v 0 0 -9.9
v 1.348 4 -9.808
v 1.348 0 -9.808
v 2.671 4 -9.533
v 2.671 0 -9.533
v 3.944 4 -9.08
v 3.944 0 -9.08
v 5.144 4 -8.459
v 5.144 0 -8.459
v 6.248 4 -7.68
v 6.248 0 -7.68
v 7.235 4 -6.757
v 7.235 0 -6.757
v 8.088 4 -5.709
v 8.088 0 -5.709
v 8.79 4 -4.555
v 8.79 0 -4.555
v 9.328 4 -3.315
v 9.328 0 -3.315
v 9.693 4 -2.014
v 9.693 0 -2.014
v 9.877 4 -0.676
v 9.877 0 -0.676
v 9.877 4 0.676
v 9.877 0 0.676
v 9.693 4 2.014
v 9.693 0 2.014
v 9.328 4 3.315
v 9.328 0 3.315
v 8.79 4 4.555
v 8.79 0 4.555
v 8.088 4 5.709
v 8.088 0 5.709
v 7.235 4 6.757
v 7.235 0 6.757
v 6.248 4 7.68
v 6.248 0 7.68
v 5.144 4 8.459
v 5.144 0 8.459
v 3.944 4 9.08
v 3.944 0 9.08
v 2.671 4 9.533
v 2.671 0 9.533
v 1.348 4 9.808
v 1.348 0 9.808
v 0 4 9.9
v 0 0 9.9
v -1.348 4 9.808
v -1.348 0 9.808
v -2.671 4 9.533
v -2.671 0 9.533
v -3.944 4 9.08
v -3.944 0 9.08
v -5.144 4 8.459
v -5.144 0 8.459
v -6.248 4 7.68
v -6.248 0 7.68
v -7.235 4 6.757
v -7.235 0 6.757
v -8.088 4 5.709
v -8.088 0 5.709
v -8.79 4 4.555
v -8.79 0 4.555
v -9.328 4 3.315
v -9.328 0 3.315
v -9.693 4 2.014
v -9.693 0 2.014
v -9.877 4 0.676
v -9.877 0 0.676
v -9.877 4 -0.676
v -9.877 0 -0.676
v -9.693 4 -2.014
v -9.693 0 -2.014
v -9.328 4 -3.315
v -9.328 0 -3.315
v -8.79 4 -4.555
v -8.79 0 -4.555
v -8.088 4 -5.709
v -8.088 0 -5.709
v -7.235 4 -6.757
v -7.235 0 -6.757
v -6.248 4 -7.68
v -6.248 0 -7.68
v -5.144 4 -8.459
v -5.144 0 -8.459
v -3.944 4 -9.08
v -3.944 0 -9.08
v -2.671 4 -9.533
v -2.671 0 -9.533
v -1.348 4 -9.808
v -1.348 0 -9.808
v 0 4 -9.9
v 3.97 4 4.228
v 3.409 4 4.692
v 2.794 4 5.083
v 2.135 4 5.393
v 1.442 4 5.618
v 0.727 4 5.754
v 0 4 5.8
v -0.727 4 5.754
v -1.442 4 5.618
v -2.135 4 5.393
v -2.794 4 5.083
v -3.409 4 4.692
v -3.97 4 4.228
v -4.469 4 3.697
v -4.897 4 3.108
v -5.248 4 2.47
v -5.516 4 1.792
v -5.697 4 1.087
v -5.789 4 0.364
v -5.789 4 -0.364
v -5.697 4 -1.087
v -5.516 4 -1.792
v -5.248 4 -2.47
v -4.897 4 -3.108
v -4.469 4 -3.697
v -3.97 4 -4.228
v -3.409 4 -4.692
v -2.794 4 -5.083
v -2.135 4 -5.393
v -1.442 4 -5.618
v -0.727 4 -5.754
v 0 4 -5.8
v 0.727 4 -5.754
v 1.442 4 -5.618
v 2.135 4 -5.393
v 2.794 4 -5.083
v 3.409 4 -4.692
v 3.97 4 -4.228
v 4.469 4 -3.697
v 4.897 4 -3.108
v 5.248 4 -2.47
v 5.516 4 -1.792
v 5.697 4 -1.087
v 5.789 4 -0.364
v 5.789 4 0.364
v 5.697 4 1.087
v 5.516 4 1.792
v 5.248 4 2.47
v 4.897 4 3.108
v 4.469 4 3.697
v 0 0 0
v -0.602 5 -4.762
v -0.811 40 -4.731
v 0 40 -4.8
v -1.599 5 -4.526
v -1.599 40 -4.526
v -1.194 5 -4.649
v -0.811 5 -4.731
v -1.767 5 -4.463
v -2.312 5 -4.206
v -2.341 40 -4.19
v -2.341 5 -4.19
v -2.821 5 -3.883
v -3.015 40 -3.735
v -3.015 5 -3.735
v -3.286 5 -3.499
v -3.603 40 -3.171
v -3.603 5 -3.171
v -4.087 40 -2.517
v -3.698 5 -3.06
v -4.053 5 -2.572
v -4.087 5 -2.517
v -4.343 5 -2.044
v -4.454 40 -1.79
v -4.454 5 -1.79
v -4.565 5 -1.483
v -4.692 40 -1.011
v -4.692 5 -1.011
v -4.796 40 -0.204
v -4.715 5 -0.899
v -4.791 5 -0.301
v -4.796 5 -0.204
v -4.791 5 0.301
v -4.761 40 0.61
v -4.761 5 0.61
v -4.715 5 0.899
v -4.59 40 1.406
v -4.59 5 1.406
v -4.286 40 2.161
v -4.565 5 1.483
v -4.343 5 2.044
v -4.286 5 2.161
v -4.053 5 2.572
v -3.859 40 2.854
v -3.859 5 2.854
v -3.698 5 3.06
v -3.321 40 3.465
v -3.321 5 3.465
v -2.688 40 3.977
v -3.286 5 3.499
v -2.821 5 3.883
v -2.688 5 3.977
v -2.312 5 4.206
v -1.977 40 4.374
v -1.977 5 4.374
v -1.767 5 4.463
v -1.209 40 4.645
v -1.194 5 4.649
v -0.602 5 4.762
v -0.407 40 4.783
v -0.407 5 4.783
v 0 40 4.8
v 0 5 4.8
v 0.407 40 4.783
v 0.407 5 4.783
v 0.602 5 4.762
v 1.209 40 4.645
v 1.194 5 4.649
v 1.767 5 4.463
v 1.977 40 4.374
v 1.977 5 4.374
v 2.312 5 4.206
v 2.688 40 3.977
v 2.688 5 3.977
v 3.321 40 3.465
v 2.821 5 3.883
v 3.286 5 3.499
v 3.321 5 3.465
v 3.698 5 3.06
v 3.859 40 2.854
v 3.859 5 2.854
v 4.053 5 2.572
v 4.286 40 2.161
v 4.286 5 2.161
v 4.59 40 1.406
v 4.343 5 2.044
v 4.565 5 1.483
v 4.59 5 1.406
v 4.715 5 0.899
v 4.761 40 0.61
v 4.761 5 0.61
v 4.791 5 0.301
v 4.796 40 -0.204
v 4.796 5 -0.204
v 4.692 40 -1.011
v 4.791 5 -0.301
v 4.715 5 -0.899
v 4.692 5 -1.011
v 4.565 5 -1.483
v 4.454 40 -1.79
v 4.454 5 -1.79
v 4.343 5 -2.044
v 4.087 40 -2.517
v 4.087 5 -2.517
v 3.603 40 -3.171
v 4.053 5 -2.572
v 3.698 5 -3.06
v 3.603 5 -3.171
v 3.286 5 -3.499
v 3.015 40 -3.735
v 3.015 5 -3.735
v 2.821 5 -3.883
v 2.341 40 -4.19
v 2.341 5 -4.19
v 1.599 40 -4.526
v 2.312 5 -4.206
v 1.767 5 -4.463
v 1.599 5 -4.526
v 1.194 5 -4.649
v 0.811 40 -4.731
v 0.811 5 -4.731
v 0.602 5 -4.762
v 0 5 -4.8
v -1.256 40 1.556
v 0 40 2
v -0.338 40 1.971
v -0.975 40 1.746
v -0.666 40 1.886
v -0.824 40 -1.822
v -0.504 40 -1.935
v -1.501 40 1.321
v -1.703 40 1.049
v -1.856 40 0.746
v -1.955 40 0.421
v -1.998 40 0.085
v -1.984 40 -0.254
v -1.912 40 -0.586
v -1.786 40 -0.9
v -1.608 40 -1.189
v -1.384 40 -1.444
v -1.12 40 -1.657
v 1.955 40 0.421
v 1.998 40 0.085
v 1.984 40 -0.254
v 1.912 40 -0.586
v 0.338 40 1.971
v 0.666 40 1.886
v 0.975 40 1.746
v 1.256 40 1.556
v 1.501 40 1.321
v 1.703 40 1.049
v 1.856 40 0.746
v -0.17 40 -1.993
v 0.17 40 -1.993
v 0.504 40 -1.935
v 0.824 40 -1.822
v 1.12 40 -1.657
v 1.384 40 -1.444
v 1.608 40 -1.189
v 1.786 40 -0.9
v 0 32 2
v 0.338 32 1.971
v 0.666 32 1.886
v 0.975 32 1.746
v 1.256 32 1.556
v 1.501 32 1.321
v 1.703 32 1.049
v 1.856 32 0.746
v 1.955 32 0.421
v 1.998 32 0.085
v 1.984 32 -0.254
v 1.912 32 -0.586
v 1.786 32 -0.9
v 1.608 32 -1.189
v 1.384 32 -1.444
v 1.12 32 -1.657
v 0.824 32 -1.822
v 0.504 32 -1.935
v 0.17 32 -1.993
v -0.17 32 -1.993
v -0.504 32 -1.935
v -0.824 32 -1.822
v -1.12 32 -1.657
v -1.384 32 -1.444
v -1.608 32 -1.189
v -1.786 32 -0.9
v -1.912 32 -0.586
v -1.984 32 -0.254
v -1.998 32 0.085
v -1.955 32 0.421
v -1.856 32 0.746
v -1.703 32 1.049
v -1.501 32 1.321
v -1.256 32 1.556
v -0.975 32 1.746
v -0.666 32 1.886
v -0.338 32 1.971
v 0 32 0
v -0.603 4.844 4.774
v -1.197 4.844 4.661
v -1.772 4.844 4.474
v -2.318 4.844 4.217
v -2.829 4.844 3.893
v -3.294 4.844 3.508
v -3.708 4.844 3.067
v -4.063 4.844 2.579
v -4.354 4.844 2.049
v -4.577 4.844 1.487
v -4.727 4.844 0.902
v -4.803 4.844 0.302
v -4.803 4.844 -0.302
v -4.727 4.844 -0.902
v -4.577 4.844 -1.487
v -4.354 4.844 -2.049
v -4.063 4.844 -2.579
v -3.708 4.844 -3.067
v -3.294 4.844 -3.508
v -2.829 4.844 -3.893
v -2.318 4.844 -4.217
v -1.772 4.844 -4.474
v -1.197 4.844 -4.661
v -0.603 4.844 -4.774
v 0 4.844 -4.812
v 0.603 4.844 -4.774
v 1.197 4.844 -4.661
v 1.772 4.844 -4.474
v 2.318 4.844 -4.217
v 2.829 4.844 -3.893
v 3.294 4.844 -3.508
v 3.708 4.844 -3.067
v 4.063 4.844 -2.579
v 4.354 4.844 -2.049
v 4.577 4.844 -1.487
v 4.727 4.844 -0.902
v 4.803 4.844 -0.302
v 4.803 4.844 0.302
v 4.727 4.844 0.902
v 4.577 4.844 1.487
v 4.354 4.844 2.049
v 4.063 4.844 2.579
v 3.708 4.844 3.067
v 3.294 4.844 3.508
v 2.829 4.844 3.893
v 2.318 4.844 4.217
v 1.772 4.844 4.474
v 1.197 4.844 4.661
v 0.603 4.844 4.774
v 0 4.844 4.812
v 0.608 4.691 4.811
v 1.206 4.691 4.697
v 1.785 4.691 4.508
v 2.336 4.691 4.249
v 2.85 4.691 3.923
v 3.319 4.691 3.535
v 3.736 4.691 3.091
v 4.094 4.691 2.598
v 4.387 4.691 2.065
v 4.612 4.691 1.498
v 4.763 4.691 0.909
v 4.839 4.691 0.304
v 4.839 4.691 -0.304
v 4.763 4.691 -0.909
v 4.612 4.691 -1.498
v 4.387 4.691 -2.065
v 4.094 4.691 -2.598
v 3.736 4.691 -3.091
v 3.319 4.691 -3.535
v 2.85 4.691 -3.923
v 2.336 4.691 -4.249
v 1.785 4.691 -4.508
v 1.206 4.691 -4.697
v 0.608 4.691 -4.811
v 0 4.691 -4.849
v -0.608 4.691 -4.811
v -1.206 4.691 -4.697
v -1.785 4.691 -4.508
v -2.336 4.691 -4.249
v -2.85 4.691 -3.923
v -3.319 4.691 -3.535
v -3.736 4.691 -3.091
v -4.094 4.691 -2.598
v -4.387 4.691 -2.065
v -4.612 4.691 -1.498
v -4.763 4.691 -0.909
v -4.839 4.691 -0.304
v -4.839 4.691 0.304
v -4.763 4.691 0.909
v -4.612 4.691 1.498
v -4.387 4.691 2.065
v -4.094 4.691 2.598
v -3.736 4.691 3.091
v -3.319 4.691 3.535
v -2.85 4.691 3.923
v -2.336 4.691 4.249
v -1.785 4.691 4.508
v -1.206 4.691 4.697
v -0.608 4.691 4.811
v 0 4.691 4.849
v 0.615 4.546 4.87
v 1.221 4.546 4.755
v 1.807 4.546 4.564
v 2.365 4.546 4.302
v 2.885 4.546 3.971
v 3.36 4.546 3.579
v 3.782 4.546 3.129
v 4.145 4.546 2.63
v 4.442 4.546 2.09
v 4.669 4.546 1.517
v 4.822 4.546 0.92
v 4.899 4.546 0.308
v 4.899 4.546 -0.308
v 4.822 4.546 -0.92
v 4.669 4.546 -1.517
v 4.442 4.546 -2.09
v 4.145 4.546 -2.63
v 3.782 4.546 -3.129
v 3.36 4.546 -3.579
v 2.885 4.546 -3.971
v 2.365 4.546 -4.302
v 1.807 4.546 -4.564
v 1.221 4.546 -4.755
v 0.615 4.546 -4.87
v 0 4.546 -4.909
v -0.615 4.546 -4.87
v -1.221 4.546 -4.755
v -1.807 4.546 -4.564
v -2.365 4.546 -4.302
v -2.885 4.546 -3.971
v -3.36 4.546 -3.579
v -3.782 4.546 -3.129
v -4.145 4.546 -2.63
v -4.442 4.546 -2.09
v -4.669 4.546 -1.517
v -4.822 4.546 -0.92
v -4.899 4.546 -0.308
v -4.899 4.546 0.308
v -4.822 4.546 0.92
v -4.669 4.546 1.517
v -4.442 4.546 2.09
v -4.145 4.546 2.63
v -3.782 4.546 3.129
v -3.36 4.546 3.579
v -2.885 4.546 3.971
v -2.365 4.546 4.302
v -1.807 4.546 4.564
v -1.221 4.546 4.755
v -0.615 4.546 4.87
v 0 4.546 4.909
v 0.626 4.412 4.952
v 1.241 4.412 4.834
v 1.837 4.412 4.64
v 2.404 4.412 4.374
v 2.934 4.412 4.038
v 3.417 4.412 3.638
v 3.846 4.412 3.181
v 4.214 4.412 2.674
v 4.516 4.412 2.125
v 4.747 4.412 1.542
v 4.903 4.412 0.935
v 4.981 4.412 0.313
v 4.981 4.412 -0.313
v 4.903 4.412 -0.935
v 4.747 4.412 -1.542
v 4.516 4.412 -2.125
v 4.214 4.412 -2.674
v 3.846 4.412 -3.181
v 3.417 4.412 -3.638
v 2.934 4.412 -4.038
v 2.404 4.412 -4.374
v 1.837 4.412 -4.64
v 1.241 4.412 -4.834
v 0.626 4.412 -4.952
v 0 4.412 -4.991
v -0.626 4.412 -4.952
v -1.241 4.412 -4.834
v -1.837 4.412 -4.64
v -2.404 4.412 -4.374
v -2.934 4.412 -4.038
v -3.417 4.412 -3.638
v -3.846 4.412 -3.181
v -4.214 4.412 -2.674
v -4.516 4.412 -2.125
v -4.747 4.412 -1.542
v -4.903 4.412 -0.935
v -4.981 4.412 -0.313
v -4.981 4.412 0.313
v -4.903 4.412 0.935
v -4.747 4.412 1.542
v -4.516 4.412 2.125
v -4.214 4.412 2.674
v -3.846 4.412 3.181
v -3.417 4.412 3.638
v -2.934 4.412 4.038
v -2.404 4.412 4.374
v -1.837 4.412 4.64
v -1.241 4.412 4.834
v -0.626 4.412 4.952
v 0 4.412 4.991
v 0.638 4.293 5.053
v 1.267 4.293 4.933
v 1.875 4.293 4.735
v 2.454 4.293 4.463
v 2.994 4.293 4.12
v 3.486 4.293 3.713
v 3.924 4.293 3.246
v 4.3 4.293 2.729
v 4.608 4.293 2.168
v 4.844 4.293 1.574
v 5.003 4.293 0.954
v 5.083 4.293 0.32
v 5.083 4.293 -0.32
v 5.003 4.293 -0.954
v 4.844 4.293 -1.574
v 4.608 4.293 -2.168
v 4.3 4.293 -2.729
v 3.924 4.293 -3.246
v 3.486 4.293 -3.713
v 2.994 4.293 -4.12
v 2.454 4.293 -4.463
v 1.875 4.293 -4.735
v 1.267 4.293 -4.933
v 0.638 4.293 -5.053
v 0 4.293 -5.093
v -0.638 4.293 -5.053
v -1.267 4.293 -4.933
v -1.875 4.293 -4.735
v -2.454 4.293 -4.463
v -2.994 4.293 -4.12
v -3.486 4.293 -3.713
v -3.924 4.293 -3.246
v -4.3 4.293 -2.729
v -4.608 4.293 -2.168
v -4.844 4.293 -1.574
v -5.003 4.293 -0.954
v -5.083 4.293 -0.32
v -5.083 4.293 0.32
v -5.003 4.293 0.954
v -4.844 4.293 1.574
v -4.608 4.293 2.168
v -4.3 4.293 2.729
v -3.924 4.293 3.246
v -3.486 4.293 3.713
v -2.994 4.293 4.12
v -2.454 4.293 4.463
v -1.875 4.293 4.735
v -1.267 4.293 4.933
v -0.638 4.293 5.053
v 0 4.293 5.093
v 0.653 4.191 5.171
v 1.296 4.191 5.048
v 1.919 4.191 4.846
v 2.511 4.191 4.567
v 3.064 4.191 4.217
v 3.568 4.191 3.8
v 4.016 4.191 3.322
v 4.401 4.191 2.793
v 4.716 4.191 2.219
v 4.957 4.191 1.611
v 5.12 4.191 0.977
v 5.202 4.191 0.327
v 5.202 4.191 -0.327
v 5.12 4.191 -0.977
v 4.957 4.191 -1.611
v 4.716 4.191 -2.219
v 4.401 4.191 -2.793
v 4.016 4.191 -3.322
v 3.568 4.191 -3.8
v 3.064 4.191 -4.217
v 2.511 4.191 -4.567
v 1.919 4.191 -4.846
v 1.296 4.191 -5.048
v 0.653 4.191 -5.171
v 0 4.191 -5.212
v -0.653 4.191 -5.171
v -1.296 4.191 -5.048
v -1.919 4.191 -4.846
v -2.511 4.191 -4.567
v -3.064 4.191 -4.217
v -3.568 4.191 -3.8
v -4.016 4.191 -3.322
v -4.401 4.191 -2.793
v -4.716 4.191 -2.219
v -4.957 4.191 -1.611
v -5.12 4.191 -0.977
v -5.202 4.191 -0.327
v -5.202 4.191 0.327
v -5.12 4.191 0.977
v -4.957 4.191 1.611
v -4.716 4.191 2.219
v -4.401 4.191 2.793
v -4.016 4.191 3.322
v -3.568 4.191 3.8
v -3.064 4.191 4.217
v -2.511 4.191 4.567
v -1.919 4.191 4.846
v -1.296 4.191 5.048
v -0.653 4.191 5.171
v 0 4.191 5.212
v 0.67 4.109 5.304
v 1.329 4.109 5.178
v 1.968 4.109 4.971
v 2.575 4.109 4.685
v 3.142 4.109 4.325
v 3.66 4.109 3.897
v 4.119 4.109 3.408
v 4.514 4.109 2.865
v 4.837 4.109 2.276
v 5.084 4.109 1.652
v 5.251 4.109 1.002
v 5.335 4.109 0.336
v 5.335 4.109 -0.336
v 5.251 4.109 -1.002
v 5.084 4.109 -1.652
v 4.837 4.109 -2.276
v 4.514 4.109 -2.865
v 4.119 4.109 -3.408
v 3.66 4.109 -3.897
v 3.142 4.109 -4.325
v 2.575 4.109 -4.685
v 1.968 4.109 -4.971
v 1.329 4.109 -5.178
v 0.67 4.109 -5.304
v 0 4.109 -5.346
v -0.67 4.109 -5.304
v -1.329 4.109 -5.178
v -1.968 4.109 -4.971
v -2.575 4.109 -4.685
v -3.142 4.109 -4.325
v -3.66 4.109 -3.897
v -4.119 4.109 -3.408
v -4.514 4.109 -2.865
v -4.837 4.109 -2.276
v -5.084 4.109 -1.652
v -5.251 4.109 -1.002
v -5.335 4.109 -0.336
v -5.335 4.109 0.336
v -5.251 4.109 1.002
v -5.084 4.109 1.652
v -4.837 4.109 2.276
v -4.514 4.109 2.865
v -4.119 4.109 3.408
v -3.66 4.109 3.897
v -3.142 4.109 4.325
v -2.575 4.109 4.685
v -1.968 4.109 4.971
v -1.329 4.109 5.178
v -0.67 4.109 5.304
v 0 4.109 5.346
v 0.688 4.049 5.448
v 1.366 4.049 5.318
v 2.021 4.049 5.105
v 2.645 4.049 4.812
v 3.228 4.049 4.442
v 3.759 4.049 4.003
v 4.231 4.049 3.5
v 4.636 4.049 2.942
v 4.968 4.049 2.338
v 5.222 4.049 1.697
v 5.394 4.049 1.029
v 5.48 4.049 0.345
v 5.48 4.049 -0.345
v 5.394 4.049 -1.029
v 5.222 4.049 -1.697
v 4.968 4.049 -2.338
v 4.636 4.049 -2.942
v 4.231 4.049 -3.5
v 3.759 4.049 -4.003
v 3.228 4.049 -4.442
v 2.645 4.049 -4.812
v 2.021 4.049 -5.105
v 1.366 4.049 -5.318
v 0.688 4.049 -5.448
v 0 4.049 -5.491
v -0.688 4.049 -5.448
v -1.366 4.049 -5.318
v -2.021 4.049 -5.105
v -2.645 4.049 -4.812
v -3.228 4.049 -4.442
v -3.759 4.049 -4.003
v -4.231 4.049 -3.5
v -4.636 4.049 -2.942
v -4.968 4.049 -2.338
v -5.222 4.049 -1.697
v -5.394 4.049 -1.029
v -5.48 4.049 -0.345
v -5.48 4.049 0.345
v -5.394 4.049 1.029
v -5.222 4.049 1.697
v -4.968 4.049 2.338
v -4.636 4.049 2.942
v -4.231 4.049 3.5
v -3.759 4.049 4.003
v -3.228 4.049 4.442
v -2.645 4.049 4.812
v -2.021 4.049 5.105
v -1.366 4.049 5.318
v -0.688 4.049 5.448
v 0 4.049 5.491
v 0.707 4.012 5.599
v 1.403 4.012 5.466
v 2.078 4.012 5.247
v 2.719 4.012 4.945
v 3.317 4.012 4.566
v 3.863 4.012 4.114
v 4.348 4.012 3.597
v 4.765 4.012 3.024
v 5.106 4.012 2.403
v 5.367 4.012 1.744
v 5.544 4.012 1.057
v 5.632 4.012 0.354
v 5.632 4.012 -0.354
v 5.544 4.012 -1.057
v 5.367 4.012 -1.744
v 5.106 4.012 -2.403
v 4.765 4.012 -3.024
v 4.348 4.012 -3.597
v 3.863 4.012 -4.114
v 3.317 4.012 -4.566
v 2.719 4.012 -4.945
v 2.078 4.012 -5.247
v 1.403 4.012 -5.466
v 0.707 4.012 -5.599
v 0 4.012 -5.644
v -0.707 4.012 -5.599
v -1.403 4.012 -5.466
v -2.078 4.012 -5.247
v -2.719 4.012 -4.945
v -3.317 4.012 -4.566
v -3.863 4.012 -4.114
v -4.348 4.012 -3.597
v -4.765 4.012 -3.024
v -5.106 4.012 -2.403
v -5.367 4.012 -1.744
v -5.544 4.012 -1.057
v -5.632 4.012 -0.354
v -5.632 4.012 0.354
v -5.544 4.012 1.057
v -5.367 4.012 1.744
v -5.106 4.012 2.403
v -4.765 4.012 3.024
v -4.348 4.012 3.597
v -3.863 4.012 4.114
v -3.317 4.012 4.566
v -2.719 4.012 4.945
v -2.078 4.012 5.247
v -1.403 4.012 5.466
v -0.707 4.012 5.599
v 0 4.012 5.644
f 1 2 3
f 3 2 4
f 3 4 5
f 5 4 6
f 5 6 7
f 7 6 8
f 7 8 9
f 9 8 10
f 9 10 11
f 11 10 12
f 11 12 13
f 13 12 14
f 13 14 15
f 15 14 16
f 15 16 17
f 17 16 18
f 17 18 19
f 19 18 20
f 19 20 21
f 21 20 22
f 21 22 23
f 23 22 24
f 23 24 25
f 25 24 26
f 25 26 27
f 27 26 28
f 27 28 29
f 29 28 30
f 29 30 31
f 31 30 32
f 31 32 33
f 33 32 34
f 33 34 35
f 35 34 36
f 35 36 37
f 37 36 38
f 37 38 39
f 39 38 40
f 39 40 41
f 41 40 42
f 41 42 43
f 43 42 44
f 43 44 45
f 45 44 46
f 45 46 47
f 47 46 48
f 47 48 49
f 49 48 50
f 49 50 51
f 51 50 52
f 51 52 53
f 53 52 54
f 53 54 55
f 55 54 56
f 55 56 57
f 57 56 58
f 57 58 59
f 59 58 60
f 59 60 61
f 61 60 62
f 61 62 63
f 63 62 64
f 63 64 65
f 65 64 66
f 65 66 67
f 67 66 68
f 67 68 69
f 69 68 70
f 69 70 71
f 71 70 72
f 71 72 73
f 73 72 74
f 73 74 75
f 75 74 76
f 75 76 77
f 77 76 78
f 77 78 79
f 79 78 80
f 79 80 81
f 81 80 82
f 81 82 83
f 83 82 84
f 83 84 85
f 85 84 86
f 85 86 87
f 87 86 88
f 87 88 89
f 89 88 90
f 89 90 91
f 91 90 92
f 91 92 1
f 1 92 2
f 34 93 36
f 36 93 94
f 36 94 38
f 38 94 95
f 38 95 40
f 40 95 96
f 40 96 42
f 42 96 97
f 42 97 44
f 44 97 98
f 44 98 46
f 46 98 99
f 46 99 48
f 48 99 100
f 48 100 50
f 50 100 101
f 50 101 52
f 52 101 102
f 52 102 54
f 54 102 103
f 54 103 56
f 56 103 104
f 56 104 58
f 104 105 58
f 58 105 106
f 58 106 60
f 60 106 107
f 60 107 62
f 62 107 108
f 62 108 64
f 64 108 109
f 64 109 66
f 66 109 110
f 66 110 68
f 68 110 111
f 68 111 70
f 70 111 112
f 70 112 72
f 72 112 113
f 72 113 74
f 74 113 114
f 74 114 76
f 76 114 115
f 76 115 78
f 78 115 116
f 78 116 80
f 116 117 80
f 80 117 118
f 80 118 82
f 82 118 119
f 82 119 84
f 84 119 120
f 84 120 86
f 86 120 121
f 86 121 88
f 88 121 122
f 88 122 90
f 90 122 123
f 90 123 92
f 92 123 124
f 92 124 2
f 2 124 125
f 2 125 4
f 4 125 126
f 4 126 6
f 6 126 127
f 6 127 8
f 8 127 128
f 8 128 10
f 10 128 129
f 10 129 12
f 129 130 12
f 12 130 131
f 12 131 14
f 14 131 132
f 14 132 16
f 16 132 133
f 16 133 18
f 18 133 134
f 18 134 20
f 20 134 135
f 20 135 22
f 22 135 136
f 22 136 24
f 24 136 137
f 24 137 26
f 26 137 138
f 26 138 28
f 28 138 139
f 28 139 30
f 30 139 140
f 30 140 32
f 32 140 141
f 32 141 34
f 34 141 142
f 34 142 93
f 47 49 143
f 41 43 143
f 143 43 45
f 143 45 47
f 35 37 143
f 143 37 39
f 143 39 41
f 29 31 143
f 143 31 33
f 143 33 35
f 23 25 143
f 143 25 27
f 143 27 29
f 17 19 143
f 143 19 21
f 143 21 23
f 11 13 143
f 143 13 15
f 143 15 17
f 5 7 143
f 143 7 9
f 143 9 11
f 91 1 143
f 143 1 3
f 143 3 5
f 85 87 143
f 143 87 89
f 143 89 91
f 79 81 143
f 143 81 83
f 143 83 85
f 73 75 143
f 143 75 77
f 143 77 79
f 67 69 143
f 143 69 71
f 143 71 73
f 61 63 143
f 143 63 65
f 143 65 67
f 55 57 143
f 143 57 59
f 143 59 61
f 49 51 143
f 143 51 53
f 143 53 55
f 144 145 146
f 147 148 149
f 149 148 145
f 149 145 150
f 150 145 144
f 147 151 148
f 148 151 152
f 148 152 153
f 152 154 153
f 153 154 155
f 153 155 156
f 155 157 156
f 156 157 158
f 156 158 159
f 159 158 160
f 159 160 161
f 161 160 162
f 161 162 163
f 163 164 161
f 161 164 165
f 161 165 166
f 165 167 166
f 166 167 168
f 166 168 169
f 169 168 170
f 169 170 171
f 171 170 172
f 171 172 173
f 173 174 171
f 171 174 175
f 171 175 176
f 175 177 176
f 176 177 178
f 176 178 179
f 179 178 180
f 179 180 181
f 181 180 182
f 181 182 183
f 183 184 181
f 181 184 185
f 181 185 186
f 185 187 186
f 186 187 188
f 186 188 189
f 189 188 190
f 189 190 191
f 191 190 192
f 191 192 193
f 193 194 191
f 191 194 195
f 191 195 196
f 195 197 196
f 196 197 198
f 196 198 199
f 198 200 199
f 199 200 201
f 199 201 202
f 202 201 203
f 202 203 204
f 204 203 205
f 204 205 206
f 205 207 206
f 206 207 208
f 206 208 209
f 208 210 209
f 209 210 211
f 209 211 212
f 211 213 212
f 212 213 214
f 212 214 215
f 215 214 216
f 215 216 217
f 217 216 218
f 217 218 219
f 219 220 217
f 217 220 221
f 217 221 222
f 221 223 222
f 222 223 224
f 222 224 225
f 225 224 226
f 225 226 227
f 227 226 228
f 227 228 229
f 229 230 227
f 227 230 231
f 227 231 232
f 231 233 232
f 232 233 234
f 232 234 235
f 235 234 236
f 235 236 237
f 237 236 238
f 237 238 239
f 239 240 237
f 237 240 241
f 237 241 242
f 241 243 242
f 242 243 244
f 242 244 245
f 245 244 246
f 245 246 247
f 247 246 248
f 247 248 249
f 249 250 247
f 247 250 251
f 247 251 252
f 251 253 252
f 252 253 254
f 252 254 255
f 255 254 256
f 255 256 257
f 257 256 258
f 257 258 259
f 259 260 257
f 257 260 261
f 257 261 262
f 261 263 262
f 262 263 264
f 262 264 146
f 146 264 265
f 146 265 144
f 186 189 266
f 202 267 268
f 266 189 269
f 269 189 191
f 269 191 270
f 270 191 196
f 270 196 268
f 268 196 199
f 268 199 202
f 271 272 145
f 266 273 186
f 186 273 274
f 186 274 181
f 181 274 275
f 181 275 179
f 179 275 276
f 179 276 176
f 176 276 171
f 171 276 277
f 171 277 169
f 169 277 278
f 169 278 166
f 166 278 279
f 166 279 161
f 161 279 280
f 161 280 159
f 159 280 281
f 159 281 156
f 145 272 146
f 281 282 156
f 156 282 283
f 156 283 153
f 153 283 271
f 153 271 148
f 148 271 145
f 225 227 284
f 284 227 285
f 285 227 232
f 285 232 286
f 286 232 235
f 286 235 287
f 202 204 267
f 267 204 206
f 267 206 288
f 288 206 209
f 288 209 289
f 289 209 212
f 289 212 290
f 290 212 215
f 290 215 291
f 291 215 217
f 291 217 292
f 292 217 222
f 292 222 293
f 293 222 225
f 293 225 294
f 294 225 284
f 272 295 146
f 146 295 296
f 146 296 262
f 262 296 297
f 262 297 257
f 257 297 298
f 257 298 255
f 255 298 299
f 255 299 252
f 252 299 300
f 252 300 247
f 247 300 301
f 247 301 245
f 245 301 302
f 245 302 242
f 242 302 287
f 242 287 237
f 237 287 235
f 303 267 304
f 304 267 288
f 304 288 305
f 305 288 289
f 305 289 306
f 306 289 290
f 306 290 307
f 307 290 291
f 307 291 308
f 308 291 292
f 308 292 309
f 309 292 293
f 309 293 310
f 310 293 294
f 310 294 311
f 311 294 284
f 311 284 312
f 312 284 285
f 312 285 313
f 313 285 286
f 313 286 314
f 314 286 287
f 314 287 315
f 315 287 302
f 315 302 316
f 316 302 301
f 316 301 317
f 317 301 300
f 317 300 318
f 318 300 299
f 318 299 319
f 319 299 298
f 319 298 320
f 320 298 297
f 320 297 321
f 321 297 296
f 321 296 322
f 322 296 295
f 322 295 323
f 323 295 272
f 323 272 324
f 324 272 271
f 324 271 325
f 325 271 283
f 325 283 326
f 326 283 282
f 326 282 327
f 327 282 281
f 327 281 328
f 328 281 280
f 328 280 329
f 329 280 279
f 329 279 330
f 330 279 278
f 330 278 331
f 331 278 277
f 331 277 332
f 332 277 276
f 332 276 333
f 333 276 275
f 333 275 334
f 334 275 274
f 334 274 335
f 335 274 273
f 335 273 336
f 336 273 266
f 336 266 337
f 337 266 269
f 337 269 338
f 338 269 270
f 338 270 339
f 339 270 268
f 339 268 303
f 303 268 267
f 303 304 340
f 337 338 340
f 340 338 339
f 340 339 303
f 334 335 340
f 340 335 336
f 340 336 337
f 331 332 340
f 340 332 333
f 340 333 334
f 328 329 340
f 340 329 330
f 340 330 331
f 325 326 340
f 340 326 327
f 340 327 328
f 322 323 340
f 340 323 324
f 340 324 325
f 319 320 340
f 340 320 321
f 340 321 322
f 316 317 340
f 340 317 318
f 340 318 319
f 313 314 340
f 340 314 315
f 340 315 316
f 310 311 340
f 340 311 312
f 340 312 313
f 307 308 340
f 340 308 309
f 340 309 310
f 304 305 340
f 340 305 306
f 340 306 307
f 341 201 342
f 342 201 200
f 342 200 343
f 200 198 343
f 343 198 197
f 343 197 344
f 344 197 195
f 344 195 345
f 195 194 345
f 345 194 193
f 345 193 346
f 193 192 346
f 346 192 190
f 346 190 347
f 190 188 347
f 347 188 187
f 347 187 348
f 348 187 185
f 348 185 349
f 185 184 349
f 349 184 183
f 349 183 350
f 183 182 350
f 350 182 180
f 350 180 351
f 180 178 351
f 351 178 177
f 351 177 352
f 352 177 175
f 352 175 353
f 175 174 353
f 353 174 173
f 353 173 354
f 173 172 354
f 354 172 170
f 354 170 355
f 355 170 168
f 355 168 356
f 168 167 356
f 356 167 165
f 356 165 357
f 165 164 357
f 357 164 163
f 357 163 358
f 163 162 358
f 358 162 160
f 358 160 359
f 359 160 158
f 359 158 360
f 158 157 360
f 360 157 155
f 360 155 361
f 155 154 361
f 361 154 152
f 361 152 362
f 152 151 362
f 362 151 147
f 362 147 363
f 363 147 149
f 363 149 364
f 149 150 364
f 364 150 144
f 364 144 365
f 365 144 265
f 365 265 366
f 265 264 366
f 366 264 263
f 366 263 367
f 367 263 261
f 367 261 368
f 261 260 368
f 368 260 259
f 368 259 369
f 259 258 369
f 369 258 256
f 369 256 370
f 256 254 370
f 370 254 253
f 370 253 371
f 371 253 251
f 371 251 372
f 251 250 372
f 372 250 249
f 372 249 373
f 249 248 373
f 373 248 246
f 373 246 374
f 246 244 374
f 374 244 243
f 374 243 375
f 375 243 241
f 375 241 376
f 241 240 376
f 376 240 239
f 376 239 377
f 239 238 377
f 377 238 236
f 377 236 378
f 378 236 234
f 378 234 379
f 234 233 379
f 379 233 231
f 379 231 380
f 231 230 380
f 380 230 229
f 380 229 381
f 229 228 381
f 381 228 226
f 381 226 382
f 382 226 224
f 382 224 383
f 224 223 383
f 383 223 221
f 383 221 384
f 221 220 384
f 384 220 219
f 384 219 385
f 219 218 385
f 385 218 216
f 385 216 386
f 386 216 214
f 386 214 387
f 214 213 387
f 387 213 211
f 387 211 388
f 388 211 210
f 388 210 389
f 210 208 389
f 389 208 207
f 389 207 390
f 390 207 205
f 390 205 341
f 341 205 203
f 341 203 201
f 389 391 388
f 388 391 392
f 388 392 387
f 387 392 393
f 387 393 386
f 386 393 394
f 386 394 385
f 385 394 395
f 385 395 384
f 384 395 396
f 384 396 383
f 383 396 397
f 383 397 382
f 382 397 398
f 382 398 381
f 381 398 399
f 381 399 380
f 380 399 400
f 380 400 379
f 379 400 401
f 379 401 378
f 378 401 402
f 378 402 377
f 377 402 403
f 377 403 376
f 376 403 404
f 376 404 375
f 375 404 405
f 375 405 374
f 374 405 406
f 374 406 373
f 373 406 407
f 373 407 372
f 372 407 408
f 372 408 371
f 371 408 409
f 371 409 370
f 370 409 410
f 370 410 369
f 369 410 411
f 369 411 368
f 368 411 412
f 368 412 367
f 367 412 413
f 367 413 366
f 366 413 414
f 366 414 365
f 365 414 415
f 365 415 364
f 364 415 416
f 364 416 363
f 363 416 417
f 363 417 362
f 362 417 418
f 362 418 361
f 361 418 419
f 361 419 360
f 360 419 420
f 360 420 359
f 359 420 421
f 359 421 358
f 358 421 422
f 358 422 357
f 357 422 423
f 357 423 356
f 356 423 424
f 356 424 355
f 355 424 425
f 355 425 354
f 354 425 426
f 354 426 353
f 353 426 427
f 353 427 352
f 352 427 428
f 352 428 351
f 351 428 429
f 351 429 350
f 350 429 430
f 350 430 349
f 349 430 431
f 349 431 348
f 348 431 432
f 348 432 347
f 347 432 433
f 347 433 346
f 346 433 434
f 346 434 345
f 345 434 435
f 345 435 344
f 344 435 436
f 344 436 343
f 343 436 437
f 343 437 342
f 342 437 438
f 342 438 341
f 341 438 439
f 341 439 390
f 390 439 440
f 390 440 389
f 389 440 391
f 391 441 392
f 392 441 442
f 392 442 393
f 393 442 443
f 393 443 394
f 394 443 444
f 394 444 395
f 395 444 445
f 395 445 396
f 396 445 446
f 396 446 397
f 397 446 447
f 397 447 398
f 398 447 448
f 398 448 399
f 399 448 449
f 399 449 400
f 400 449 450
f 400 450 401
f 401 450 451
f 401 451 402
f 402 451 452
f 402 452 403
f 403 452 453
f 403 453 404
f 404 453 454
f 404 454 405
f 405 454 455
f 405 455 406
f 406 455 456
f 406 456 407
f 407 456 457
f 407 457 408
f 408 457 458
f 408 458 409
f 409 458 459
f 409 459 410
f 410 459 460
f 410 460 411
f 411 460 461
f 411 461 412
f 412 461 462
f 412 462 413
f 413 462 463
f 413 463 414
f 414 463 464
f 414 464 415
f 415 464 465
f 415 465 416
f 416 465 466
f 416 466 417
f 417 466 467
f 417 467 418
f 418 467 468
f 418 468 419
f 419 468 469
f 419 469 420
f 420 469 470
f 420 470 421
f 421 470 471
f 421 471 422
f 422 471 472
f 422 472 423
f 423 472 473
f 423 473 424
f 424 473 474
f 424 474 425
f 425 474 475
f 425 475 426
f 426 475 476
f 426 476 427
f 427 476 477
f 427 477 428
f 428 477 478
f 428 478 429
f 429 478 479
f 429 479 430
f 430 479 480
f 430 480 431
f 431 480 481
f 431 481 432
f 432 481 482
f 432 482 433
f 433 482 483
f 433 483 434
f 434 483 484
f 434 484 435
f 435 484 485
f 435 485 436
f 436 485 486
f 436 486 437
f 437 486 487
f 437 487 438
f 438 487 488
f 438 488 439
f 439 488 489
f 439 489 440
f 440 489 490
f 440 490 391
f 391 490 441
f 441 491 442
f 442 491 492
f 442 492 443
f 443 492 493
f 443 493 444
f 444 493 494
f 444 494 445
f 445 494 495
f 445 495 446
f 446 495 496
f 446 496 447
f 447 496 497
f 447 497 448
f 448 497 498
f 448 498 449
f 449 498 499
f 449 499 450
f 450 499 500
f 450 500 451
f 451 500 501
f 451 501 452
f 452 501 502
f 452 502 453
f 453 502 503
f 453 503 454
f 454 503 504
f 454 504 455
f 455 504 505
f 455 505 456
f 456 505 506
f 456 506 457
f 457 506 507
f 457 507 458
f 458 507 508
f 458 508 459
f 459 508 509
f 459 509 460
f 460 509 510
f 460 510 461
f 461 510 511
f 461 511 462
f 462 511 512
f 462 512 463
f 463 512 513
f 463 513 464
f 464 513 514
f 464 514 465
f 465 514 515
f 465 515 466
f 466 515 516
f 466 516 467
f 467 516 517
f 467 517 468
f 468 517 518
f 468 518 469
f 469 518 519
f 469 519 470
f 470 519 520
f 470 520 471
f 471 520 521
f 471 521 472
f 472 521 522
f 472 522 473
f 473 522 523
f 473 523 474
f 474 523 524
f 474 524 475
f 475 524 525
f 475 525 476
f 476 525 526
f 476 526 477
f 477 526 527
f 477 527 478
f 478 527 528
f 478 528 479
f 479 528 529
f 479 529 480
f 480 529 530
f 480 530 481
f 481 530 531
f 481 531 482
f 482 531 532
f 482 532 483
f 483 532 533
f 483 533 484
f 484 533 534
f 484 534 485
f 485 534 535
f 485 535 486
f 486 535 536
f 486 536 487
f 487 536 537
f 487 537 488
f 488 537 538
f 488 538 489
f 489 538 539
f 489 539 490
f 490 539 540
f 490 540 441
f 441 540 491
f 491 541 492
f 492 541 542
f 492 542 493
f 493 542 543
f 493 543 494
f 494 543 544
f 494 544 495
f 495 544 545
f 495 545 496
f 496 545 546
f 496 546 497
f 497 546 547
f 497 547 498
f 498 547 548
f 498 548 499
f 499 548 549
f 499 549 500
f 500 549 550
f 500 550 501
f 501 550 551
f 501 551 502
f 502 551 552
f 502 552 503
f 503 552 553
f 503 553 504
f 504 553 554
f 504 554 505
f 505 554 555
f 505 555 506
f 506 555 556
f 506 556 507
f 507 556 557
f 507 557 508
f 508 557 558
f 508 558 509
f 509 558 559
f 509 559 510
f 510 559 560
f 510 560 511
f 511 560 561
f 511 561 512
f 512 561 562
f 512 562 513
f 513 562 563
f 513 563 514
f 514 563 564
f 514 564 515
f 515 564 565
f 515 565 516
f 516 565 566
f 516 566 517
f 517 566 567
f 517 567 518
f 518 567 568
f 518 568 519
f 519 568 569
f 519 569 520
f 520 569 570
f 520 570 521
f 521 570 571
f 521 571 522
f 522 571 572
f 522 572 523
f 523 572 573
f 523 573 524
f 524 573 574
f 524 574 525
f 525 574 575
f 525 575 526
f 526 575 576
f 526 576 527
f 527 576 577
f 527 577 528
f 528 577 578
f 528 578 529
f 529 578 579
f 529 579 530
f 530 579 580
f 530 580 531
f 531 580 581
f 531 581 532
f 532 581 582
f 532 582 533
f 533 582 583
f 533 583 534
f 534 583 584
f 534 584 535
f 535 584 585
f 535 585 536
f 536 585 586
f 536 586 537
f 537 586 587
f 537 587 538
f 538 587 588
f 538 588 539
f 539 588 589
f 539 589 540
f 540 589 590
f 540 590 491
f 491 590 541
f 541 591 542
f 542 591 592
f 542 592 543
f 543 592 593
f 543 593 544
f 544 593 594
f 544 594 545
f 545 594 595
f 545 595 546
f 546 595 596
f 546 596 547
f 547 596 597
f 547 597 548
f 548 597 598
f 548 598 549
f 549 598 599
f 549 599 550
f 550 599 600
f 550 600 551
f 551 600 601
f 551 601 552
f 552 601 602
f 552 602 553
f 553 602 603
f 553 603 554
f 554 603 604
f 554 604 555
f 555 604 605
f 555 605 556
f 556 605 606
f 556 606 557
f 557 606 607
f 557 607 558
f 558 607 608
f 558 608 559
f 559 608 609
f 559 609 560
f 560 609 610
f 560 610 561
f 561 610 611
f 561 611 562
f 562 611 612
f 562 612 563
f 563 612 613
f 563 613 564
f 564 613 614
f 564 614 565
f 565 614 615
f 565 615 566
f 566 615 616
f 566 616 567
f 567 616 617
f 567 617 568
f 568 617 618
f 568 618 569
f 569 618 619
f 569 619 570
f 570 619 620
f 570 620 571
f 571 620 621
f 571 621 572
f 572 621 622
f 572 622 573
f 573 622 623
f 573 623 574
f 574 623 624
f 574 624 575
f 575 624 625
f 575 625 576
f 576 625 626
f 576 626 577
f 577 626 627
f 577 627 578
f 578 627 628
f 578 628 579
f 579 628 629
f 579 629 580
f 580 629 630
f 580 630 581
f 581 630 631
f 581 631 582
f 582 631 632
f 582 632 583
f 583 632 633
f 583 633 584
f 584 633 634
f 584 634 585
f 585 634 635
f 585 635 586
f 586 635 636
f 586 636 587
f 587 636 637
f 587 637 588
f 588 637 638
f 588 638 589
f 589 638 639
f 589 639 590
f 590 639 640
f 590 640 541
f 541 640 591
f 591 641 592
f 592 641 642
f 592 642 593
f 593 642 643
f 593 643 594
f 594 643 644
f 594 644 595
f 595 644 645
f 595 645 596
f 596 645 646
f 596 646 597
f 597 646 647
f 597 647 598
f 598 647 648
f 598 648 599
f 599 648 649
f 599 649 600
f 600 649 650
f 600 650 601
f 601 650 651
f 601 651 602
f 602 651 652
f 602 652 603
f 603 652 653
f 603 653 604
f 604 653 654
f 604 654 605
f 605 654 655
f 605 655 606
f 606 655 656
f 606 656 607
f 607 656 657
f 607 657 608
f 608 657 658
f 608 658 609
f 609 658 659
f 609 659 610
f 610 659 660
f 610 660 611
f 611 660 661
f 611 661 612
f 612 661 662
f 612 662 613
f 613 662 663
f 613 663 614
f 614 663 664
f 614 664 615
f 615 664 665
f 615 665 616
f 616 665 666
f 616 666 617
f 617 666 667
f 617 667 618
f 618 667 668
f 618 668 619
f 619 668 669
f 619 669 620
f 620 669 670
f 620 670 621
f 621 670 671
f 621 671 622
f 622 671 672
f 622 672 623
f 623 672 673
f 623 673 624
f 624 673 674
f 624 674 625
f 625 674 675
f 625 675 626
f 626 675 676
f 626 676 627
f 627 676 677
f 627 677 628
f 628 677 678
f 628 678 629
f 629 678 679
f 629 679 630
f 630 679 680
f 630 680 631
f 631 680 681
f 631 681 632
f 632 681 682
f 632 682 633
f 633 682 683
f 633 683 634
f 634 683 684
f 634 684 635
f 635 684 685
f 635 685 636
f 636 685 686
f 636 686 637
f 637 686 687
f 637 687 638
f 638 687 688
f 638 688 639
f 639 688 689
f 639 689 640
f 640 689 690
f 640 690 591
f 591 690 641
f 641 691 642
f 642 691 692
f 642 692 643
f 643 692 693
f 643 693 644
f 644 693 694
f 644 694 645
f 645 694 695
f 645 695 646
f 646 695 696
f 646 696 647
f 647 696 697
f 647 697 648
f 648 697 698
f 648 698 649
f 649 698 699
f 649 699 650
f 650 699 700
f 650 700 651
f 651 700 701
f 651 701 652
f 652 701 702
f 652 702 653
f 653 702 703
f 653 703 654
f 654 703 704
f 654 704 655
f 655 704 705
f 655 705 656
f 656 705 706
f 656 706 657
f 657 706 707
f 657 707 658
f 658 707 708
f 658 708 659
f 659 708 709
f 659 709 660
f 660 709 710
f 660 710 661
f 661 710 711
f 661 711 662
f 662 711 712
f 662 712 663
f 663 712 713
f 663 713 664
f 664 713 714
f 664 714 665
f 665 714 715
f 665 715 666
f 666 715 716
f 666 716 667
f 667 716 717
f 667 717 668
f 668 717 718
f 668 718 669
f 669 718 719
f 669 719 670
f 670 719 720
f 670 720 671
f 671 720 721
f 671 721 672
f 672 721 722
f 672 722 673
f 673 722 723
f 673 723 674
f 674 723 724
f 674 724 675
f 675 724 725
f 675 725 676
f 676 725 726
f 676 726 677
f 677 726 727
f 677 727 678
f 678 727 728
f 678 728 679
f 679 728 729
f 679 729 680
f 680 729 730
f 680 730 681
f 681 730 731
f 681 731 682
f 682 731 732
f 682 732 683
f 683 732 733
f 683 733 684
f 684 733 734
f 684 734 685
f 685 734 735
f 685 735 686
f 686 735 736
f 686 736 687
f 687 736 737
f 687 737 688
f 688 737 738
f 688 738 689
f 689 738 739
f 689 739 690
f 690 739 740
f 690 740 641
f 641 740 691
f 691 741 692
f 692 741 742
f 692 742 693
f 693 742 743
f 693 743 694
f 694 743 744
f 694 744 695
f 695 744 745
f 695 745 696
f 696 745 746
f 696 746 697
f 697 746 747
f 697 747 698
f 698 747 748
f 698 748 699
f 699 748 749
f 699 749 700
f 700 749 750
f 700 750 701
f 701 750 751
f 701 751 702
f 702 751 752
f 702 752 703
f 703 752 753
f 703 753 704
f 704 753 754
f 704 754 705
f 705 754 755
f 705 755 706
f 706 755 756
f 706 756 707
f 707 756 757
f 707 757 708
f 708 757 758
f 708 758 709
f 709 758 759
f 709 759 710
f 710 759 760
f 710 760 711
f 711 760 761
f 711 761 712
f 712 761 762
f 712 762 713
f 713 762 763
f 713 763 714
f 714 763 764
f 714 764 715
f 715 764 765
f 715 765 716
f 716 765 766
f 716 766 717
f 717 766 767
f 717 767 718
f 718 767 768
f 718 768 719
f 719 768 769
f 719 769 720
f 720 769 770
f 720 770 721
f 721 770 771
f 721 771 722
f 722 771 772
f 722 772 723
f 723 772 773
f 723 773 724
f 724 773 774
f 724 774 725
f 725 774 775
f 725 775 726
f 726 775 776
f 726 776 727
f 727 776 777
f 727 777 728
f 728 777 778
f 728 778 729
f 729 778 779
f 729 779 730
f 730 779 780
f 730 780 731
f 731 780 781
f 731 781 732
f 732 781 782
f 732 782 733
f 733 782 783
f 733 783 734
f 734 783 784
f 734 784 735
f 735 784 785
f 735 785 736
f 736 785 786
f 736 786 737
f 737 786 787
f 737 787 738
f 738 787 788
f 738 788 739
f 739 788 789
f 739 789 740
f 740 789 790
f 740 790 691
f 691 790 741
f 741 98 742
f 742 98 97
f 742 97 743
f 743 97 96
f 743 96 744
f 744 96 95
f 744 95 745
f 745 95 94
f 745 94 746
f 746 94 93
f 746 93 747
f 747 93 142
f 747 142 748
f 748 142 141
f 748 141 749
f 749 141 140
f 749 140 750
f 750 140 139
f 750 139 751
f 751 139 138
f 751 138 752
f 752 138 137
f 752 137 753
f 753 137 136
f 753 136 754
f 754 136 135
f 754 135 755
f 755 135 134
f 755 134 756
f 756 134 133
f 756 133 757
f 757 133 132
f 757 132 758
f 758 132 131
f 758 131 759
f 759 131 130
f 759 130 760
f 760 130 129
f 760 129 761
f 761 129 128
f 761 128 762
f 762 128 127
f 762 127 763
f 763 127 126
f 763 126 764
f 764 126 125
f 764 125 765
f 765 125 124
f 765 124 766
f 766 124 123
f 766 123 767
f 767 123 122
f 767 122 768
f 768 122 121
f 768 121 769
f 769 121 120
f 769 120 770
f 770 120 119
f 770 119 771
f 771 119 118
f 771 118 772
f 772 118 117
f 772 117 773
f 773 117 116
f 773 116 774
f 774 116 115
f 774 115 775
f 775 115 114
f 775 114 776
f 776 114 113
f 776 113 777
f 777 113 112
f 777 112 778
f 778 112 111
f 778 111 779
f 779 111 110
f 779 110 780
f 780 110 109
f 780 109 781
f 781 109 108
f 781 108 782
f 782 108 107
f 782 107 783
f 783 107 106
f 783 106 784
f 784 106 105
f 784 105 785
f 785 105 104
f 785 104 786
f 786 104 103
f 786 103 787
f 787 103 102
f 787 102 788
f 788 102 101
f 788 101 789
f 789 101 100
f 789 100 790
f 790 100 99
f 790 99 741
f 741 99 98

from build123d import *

# Parameters (mm, degrees)
SKETCH1_R           = 9.9
SKETCH1_R_2         = 4.8
SKETCH1_R_3         = 2
BOSS_EXTRUDE1_DEPTH = 4
BOSS_EXTRUDE2_START = 4
SKETCH1_3_R         = 4.8
SKETCH1_3_R_2       = 2
BOSS_EXTRUDE2_DEPTH = 36
CUT_EXTRUDE1_START  = 40
SKETCH1_4_R         = 2
CUT_EXTRUDE1_DEPTH  = 8
FILLET1_R           = 1


with BuildPart() as part:
    # Sketch1 → Boss-Extrude1 (new body)
    with BuildSketch(Plane(origin=(0, 0, 0), x_dir=(1, 0, 0), z_dir=(0, 1, 0))):
        with Locations(Location((0, 0, 0), (0, 0, 270))):
            Circle(SKETCH1_R)
        Circle(SKETCH1_R_2, mode=Mode.SUBTRACT)
        Circle(SKETCH1_R_2)
        Circle(SKETCH1_R_3, mode=Mode.SUBTRACT)
        Circle(SKETCH1_R_3)
    extrude(amount=BOSS_EXTRUDE1_DEPTH)

    # Sketch1<3> → Boss-Extrude2 (add)
    with BuildSketch(Plane(origin=(0, 0, 0), x_dir=(1, 0, 0), z_dir=(0, 1, 0)).offset(BOSS_EXTRUDE2_START)):
        with Locations(Location((0, 0, 0), (0, 0, 270))):
            Circle(SKETCH1_3_R)
        Circle(SKETCH1_3_R_2, mode=Mode.SUBTRACT)
        Circle(SKETCH1_3_R_2)
    extrude(amount=BOSS_EXTRUDE2_DEPTH)

    # Sketch1<4> → Cut-Extrude1 (cut)
    with BuildSketch(Plane(origin=(0, 0, 0), x_dir=(1, 0, 0), z_dir=(0, 1, 0)).offset(CUT_EXTRUDE1_START)):
        with Locations(Location((0, 0, 0), (0, 0, 270))):
            Circle(SKETCH1_4_R)
    extrude(amount=-CUT_EXTRUDE1_DEPTH, mode=Mode.SUBTRACT)

    # Fillet1
    fillet1_edges = [part.edges().sort_by_distance(p)[0] for p in [
        (0, 4, -4.8),
    ]]
    fillet(fillet1_edges, radius=FILLET1_R)


solid = part.part
